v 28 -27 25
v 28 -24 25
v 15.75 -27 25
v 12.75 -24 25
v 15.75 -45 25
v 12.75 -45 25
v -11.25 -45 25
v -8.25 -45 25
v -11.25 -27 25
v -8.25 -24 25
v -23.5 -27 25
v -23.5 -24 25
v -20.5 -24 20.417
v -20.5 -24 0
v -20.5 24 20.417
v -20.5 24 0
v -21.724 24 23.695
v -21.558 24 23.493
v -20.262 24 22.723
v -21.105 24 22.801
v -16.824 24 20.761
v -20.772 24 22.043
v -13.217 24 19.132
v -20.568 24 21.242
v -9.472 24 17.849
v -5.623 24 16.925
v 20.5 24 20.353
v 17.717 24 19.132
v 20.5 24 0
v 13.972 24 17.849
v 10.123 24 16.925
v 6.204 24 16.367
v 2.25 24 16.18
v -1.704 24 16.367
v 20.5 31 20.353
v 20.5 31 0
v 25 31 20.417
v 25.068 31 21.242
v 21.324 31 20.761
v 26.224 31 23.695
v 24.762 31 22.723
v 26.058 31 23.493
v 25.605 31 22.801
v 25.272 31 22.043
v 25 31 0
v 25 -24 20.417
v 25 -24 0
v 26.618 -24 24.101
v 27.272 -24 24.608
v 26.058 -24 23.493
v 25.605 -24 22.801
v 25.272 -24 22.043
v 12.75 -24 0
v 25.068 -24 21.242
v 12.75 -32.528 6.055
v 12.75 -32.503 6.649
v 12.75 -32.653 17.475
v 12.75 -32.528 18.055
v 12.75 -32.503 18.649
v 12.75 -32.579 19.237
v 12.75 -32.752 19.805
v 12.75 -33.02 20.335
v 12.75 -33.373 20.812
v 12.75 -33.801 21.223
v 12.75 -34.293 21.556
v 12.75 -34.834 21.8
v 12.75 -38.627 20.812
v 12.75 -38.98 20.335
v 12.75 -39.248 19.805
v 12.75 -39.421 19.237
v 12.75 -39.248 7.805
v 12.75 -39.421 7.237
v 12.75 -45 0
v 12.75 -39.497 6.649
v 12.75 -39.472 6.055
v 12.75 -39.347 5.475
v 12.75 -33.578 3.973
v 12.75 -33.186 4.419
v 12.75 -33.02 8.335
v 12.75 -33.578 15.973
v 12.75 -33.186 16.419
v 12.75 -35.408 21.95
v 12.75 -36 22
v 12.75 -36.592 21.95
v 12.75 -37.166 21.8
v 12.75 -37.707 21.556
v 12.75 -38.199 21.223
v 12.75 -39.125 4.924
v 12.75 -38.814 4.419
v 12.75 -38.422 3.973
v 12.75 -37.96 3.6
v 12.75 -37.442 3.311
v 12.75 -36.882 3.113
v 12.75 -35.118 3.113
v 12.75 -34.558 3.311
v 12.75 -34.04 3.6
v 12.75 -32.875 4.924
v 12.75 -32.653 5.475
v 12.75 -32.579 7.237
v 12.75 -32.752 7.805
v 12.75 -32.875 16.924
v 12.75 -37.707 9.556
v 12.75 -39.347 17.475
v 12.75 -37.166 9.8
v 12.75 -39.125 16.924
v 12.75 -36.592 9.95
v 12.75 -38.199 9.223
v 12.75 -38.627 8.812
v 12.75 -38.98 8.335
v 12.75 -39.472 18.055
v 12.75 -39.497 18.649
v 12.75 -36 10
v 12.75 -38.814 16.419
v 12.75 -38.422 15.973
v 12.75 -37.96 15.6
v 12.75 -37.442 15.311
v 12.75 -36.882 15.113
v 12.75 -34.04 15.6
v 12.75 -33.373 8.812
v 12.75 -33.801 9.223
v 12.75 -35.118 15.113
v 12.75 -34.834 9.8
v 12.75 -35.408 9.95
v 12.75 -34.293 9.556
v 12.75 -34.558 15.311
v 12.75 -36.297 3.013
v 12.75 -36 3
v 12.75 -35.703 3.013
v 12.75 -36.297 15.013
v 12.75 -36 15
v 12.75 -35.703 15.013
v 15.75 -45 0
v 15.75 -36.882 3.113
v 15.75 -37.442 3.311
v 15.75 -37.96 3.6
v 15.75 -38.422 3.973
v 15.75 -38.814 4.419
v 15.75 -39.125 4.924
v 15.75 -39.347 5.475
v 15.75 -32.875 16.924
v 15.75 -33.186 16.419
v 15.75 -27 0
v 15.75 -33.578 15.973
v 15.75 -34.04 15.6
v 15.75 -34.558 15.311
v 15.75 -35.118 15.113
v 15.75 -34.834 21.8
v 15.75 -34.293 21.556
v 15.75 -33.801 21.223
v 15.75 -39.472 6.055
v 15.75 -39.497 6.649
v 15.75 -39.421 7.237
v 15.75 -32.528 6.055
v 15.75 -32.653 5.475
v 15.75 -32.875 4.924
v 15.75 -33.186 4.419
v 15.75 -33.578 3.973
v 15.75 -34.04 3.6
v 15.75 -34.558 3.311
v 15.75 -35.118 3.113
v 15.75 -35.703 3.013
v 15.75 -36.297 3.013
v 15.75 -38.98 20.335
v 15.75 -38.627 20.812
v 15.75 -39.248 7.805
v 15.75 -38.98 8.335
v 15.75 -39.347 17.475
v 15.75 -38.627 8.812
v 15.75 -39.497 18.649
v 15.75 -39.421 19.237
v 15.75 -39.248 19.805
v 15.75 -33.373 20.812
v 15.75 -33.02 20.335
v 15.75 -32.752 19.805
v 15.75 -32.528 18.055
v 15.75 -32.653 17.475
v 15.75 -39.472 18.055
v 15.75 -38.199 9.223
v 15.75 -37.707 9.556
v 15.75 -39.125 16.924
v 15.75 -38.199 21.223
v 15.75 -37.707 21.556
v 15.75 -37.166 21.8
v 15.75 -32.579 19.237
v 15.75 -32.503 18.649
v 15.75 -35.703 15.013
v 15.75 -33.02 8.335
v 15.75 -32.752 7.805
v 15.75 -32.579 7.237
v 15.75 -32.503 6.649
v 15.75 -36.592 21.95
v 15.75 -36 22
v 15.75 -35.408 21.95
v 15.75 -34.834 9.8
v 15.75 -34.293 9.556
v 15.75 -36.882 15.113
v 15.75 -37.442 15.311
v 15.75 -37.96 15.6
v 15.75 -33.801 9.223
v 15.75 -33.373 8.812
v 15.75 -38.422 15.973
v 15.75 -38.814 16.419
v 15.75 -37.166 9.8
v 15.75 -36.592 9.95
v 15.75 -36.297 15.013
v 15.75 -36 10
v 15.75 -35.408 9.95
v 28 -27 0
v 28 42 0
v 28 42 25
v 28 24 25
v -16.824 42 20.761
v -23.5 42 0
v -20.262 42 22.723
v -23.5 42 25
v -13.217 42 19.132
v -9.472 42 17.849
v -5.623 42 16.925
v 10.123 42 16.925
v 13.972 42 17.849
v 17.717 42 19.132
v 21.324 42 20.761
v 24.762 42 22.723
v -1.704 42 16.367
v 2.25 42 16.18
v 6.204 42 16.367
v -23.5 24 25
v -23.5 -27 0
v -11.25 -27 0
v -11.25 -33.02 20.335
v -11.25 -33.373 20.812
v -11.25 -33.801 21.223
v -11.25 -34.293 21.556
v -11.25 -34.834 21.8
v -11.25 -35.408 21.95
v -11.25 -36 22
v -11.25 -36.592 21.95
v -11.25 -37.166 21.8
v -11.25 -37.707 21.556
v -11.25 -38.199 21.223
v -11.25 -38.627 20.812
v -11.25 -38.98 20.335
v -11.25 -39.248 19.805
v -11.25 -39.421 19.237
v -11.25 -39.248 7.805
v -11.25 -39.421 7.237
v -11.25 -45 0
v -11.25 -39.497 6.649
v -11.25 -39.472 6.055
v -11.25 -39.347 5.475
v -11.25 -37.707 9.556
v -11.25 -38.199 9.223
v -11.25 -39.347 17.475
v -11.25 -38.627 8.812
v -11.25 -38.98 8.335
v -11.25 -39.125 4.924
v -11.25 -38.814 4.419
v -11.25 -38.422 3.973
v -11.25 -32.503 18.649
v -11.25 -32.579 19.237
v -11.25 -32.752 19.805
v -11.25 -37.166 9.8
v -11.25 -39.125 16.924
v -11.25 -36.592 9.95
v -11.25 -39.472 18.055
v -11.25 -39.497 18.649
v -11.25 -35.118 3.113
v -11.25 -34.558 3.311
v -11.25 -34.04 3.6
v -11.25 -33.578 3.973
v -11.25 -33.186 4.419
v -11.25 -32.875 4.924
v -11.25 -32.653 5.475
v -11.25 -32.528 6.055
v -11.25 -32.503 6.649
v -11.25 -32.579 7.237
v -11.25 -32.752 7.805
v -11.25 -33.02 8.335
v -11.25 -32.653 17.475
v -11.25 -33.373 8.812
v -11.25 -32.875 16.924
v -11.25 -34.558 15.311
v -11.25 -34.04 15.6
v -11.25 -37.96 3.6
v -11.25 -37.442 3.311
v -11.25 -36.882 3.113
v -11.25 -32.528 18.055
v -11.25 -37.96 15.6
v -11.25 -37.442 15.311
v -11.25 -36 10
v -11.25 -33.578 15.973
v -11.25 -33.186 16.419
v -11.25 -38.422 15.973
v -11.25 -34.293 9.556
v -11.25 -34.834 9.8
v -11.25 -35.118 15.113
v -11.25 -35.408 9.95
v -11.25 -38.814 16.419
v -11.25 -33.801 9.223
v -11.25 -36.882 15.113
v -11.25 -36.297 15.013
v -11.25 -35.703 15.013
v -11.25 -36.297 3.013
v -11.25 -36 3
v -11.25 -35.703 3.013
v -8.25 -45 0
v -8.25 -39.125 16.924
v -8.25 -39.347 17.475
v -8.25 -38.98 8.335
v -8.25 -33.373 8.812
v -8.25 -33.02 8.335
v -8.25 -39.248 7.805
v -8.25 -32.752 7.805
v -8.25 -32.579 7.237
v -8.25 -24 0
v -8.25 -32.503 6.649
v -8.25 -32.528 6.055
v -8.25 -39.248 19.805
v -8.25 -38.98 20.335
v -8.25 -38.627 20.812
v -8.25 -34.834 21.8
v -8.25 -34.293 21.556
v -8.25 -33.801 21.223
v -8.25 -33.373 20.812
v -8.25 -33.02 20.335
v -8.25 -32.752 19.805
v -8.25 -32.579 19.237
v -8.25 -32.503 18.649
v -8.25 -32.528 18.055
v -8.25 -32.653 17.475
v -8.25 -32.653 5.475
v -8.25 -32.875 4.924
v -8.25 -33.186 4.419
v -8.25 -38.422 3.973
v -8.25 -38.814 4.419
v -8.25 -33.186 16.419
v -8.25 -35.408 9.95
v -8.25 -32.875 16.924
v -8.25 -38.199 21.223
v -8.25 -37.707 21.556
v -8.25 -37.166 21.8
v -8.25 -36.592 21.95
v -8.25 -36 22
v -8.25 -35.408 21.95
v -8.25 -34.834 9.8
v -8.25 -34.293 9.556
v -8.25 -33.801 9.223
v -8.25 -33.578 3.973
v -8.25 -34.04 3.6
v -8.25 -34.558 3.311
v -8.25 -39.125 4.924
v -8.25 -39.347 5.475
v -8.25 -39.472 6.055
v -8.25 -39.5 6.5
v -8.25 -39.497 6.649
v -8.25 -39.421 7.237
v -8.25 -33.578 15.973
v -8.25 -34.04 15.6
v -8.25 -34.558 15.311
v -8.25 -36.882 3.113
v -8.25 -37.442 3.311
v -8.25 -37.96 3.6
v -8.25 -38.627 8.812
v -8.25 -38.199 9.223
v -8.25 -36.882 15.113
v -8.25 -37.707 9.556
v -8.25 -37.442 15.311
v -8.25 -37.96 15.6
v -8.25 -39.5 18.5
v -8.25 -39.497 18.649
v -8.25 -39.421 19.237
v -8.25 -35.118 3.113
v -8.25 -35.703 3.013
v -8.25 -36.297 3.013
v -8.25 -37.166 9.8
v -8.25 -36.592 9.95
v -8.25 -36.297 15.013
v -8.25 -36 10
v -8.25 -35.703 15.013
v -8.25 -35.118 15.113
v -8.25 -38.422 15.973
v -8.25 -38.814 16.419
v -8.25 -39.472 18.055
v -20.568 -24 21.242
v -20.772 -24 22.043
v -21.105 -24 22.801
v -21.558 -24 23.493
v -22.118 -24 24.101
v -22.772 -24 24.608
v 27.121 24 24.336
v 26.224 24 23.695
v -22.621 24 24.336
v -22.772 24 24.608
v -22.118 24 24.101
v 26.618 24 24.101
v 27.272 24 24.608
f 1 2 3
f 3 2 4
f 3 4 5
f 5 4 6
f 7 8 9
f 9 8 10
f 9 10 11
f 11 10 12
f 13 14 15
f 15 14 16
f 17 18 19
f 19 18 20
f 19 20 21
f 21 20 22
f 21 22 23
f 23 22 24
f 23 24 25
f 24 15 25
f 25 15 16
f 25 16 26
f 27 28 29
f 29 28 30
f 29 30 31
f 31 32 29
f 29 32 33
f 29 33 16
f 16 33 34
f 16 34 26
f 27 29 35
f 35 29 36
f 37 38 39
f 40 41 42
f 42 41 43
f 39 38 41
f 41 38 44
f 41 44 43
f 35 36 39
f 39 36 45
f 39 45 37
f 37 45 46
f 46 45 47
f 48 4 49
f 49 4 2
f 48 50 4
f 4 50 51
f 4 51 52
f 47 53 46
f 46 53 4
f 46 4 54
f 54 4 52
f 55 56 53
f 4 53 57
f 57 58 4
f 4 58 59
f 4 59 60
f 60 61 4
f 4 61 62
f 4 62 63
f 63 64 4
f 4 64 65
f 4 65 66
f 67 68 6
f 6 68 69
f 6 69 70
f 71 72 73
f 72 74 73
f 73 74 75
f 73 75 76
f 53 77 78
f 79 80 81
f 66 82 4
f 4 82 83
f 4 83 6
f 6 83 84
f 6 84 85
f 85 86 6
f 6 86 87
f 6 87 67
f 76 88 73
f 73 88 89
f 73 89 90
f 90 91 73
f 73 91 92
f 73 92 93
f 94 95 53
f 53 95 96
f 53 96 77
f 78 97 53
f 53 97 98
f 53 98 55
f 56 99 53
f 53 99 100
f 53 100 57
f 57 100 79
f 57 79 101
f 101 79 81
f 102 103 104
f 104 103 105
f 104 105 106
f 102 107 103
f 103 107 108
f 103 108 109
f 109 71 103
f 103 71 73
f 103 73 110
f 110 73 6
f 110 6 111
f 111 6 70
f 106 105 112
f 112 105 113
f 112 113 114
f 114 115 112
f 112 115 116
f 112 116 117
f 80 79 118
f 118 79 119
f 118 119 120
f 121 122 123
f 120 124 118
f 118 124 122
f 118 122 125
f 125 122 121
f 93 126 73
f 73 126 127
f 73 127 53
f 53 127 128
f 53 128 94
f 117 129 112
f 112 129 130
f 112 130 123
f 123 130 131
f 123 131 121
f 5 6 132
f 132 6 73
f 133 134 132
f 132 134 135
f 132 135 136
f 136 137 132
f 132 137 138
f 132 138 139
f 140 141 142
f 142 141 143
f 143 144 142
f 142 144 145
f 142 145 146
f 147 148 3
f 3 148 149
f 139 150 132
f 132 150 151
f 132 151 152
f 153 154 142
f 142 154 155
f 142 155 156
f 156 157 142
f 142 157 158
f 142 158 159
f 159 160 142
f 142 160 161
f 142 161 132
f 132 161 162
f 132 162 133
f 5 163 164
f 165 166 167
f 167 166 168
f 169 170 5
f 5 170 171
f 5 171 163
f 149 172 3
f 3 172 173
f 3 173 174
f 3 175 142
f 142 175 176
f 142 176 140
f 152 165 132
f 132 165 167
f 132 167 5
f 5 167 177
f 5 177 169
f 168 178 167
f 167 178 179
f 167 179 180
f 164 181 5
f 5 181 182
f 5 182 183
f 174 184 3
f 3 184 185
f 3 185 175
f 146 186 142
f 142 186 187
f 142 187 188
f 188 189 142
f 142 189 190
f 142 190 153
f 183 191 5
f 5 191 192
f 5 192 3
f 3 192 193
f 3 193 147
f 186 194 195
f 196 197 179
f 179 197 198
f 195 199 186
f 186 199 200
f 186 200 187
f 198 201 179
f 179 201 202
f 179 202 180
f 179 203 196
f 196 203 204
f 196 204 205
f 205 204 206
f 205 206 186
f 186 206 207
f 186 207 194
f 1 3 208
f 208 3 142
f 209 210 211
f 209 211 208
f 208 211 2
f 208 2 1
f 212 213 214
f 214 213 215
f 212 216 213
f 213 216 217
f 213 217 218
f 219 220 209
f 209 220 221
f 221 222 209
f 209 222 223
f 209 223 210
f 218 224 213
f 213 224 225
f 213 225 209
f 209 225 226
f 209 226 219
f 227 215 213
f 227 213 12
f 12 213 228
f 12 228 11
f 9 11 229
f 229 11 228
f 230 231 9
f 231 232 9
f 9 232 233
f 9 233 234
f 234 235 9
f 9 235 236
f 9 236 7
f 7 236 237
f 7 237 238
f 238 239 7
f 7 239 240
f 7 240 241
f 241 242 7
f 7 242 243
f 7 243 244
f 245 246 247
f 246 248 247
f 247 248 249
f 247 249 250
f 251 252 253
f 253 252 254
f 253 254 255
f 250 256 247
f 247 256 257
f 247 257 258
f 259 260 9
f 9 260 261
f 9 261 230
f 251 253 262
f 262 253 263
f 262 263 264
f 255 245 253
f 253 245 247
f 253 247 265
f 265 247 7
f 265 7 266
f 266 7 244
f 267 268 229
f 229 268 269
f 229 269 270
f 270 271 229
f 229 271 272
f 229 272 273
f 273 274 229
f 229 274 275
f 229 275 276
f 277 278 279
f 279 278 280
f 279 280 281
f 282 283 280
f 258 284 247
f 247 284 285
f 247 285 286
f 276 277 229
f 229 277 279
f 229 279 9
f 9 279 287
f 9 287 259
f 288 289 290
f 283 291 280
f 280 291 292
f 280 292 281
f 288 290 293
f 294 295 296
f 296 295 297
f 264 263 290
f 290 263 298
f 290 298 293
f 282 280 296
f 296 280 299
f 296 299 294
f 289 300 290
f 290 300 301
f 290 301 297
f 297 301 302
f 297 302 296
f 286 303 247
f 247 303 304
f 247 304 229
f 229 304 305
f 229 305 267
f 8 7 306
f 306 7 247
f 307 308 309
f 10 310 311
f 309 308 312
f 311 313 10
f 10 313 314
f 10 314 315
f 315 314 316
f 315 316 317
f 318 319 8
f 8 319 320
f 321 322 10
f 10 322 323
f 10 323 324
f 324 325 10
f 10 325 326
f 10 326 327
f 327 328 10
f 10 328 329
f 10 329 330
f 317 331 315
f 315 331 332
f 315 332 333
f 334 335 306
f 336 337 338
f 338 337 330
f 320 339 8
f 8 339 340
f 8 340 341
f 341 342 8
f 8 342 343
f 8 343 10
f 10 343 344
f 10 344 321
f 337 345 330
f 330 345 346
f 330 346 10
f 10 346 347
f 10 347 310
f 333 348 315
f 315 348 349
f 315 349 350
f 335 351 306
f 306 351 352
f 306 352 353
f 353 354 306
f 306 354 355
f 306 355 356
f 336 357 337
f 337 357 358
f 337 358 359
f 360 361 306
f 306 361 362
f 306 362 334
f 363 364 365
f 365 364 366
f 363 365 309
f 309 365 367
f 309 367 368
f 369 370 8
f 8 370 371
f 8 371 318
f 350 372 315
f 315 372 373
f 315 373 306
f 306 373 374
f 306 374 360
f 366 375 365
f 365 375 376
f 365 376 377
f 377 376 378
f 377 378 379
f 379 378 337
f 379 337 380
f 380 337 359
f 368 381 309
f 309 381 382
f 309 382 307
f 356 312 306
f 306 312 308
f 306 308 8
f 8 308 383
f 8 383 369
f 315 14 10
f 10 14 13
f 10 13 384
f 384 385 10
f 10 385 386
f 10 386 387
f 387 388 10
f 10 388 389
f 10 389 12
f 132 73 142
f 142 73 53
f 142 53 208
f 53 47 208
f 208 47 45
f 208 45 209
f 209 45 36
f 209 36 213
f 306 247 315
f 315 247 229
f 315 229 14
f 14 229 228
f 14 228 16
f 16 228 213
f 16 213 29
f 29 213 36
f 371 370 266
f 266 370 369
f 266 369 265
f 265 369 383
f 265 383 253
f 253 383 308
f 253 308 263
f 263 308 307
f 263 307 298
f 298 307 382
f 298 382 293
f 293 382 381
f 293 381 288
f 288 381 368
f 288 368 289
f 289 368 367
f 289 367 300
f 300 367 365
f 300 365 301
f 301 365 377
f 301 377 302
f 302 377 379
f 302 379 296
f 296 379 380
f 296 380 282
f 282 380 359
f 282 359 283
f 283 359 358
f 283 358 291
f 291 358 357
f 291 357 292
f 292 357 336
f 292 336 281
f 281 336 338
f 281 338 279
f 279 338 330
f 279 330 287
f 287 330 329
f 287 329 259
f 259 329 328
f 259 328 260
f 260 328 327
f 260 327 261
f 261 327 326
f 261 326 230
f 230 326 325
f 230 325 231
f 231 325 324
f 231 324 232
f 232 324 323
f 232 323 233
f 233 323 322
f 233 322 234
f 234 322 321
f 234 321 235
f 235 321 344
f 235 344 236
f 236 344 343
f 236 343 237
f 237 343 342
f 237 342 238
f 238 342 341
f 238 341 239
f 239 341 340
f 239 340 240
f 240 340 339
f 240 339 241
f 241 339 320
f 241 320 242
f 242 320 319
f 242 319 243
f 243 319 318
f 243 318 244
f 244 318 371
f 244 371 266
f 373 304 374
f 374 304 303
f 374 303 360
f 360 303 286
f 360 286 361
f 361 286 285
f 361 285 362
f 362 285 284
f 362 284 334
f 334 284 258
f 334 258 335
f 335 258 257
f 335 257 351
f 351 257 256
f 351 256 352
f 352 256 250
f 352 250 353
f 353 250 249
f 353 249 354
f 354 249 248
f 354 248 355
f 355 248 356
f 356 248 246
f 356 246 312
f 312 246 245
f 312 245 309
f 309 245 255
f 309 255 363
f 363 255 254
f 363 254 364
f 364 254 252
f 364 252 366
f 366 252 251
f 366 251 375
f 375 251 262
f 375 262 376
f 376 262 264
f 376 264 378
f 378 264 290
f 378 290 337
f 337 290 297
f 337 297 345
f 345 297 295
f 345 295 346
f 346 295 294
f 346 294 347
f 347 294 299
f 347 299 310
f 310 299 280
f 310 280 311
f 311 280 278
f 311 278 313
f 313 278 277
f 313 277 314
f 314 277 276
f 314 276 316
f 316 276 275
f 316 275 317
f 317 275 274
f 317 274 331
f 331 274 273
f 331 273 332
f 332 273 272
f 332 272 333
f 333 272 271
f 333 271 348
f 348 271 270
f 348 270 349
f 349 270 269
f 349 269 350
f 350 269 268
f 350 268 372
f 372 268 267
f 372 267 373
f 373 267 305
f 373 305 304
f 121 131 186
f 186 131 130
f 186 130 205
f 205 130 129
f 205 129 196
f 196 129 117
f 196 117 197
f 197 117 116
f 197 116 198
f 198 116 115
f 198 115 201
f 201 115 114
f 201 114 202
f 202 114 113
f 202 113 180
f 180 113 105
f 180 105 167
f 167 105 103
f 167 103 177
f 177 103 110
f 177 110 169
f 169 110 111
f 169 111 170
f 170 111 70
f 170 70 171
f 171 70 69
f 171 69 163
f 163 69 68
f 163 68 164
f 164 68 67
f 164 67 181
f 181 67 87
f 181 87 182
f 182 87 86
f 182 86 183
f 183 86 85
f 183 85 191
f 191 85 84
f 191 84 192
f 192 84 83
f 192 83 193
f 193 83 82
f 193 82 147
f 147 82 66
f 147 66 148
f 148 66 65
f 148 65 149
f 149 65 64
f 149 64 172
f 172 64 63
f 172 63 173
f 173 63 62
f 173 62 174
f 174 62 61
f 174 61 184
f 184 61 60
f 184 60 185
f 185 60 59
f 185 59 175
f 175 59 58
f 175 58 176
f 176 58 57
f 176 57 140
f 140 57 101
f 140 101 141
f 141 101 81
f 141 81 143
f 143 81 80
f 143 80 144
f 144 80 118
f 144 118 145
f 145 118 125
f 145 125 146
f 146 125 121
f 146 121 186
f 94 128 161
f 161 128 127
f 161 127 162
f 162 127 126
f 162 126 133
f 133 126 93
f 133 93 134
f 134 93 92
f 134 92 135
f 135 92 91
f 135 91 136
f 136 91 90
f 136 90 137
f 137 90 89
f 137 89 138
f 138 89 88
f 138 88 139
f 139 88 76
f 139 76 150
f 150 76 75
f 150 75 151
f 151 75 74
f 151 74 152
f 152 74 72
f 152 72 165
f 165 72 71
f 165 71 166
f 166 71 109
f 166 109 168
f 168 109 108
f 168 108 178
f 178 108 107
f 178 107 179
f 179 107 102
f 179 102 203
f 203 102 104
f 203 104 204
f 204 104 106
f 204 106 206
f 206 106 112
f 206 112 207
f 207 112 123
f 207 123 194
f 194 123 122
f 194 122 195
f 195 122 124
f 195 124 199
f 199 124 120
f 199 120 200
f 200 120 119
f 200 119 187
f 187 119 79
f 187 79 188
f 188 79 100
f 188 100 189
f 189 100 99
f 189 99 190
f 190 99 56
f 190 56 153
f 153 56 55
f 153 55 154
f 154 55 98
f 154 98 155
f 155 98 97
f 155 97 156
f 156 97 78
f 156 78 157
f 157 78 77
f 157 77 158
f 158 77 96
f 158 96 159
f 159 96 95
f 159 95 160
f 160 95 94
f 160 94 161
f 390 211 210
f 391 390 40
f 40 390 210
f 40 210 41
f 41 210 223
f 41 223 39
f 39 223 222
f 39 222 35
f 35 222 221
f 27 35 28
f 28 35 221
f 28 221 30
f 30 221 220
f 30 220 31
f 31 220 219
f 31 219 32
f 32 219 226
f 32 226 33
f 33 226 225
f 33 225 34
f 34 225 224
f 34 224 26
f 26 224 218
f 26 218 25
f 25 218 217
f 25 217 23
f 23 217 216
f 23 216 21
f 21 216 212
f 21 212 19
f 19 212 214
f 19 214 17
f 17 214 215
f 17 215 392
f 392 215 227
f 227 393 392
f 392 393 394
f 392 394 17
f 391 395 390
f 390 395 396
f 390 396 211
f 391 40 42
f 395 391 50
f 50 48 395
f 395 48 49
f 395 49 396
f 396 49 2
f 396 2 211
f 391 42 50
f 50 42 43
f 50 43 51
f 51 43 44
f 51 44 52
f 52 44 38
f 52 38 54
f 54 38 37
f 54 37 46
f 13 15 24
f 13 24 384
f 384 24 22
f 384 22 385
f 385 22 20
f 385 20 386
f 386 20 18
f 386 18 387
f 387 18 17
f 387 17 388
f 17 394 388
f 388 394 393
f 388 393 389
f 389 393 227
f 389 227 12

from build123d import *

# Parameters (mm, degrees)
BOSS_EXTRUDE1_DEPTH = 25
SKETCH2_R           = 3.5
CUT_EXTRUDE1_DEPTH  = 65.734554142
CUT_EXTRUDE3_REACH  = 96.752
FILLET1_R           = 5


with BuildPart() as part:
    # Sketch1 → Boss-Extrude1 (new body)
    with BuildSketch(Plane.XY):
        Polygon((-20.5, 24), (20.5, 24), (20.5, 31), (25, 31), (25, -24), (12.75, -24), (12.75, -45), (15.75, -45), (15.75, -27), (28, -27), (28, 34), (28, 42), (-23.5, 42), (-23.5, 27), (-23.5, -27), (-11.25, -27), (-11.25, -45), (-8.25, -45), (-8.25, -24), (-20.5, -24), align=None)
    extrude(amount=BOSS_EXTRUDE1_DEPTH)

    # Sketch2 → Cut-Extrude1 (cut, through all)
    with BuildSketch(Plane(origin=(-11.25, 0, 0), x_dir=(0, 0, -1), z_dir=(1, 0, 0))):
        with Locations(Location((-6.5, -36, 0), (0, 0, 270))):
            Circle(SKETCH2_R)
        with Locations(Location((-18.5, -36, 0), (0, 0, 180))):
            Circle(SKETCH2_R)
    extrude(amount=CUT_EXTRUDE1_DEPTH, mode=Mode.SUBTRACT)

    # Cut-Extrude3: up to this face of the body (flat: up to its plane)
    cut_extrude3_end = Plane(part.part.faces().sort_by_distance((0, 24, 12.5))[0])
    # Sketch4 → Cut-Extrude3 (cut, up to the picked face)
    with BuildSketch(Plane(origin=(0, 42, 0), x_dir=(1, 0, 0), z_dir=(0, 1, 0)), mode=Mode.PRIVATE) as cut_extrude3_sk1:
        with BuildLine():
            Line((28, -25), (-23.5, -25))
            ThreePointArc((-23.5, -25), (2.25, -16.180378238), (28, -25))
        make_face()
    cut_extrude3_tool1 = split(extrude(cut_extrude3_sk1.sketch, amount=-CUT_EXTRUDE3_REACH, mode=Mode.PRIVATE), bisect_by=cut_extrude3_end, keep=Keep.BOTH, mode=Mode.PRIVATE)
    add(cut_extrude3_tool1.solids().sort_by(Axis((2.25, 42, 21.438341), (0, -1, 0)))[0], mode=Mode.SUBTRACT)

    # Fillet1
    # the kernel refuses this fillet: 5 mm, written as the material it takes off along each edge
    with BuildSketch(Plane(origin=(25, 35.456439237, 25), x_dir=(0, 0, -1), z_dir=(0, -1, 0))) as fillet1_piece_1_section:
        with BuildLine():
            CenterArc((4.582575695, 5), FILLET1_R, 203.578178478, 66.421821522)
            Line((0, 3), (0, 0))
            Line((0, 0), (4.582575695, 0))
        make_face()
    fillet1_piece_1 = extrude(amount=59.456439237, mode=Mode.PRIVATE)
    fillet1_piece_1 = split(fillet1_piece_1, bisect_by=Plane(origin=(25.306626157, 31, 22.170234041), z_dir=(0, -1, 0)), keep=Keep.TOP, mode=Mode.PRIVATE)
    add(fillet1_piece_1, mode=Mode.SUBTRACT)
    with BuildSketch(Plane(origin=(-20.5, -24, 25), x_dir=(0, 0, -1), z_dir=(0, 1, 0))) as fillet1_piece_2:
        with BuildLine():
            CenterArc((4.582575695, 5), FILLET1_R, 203.578178478, 66.421821522)
            Line((0, 3), (0, 0))
            Line((0, 0), (4.582575695, 0))
        make_face()
    extrude(amount=48, mode=Mode.SUBTRACT)


solid = part.part
